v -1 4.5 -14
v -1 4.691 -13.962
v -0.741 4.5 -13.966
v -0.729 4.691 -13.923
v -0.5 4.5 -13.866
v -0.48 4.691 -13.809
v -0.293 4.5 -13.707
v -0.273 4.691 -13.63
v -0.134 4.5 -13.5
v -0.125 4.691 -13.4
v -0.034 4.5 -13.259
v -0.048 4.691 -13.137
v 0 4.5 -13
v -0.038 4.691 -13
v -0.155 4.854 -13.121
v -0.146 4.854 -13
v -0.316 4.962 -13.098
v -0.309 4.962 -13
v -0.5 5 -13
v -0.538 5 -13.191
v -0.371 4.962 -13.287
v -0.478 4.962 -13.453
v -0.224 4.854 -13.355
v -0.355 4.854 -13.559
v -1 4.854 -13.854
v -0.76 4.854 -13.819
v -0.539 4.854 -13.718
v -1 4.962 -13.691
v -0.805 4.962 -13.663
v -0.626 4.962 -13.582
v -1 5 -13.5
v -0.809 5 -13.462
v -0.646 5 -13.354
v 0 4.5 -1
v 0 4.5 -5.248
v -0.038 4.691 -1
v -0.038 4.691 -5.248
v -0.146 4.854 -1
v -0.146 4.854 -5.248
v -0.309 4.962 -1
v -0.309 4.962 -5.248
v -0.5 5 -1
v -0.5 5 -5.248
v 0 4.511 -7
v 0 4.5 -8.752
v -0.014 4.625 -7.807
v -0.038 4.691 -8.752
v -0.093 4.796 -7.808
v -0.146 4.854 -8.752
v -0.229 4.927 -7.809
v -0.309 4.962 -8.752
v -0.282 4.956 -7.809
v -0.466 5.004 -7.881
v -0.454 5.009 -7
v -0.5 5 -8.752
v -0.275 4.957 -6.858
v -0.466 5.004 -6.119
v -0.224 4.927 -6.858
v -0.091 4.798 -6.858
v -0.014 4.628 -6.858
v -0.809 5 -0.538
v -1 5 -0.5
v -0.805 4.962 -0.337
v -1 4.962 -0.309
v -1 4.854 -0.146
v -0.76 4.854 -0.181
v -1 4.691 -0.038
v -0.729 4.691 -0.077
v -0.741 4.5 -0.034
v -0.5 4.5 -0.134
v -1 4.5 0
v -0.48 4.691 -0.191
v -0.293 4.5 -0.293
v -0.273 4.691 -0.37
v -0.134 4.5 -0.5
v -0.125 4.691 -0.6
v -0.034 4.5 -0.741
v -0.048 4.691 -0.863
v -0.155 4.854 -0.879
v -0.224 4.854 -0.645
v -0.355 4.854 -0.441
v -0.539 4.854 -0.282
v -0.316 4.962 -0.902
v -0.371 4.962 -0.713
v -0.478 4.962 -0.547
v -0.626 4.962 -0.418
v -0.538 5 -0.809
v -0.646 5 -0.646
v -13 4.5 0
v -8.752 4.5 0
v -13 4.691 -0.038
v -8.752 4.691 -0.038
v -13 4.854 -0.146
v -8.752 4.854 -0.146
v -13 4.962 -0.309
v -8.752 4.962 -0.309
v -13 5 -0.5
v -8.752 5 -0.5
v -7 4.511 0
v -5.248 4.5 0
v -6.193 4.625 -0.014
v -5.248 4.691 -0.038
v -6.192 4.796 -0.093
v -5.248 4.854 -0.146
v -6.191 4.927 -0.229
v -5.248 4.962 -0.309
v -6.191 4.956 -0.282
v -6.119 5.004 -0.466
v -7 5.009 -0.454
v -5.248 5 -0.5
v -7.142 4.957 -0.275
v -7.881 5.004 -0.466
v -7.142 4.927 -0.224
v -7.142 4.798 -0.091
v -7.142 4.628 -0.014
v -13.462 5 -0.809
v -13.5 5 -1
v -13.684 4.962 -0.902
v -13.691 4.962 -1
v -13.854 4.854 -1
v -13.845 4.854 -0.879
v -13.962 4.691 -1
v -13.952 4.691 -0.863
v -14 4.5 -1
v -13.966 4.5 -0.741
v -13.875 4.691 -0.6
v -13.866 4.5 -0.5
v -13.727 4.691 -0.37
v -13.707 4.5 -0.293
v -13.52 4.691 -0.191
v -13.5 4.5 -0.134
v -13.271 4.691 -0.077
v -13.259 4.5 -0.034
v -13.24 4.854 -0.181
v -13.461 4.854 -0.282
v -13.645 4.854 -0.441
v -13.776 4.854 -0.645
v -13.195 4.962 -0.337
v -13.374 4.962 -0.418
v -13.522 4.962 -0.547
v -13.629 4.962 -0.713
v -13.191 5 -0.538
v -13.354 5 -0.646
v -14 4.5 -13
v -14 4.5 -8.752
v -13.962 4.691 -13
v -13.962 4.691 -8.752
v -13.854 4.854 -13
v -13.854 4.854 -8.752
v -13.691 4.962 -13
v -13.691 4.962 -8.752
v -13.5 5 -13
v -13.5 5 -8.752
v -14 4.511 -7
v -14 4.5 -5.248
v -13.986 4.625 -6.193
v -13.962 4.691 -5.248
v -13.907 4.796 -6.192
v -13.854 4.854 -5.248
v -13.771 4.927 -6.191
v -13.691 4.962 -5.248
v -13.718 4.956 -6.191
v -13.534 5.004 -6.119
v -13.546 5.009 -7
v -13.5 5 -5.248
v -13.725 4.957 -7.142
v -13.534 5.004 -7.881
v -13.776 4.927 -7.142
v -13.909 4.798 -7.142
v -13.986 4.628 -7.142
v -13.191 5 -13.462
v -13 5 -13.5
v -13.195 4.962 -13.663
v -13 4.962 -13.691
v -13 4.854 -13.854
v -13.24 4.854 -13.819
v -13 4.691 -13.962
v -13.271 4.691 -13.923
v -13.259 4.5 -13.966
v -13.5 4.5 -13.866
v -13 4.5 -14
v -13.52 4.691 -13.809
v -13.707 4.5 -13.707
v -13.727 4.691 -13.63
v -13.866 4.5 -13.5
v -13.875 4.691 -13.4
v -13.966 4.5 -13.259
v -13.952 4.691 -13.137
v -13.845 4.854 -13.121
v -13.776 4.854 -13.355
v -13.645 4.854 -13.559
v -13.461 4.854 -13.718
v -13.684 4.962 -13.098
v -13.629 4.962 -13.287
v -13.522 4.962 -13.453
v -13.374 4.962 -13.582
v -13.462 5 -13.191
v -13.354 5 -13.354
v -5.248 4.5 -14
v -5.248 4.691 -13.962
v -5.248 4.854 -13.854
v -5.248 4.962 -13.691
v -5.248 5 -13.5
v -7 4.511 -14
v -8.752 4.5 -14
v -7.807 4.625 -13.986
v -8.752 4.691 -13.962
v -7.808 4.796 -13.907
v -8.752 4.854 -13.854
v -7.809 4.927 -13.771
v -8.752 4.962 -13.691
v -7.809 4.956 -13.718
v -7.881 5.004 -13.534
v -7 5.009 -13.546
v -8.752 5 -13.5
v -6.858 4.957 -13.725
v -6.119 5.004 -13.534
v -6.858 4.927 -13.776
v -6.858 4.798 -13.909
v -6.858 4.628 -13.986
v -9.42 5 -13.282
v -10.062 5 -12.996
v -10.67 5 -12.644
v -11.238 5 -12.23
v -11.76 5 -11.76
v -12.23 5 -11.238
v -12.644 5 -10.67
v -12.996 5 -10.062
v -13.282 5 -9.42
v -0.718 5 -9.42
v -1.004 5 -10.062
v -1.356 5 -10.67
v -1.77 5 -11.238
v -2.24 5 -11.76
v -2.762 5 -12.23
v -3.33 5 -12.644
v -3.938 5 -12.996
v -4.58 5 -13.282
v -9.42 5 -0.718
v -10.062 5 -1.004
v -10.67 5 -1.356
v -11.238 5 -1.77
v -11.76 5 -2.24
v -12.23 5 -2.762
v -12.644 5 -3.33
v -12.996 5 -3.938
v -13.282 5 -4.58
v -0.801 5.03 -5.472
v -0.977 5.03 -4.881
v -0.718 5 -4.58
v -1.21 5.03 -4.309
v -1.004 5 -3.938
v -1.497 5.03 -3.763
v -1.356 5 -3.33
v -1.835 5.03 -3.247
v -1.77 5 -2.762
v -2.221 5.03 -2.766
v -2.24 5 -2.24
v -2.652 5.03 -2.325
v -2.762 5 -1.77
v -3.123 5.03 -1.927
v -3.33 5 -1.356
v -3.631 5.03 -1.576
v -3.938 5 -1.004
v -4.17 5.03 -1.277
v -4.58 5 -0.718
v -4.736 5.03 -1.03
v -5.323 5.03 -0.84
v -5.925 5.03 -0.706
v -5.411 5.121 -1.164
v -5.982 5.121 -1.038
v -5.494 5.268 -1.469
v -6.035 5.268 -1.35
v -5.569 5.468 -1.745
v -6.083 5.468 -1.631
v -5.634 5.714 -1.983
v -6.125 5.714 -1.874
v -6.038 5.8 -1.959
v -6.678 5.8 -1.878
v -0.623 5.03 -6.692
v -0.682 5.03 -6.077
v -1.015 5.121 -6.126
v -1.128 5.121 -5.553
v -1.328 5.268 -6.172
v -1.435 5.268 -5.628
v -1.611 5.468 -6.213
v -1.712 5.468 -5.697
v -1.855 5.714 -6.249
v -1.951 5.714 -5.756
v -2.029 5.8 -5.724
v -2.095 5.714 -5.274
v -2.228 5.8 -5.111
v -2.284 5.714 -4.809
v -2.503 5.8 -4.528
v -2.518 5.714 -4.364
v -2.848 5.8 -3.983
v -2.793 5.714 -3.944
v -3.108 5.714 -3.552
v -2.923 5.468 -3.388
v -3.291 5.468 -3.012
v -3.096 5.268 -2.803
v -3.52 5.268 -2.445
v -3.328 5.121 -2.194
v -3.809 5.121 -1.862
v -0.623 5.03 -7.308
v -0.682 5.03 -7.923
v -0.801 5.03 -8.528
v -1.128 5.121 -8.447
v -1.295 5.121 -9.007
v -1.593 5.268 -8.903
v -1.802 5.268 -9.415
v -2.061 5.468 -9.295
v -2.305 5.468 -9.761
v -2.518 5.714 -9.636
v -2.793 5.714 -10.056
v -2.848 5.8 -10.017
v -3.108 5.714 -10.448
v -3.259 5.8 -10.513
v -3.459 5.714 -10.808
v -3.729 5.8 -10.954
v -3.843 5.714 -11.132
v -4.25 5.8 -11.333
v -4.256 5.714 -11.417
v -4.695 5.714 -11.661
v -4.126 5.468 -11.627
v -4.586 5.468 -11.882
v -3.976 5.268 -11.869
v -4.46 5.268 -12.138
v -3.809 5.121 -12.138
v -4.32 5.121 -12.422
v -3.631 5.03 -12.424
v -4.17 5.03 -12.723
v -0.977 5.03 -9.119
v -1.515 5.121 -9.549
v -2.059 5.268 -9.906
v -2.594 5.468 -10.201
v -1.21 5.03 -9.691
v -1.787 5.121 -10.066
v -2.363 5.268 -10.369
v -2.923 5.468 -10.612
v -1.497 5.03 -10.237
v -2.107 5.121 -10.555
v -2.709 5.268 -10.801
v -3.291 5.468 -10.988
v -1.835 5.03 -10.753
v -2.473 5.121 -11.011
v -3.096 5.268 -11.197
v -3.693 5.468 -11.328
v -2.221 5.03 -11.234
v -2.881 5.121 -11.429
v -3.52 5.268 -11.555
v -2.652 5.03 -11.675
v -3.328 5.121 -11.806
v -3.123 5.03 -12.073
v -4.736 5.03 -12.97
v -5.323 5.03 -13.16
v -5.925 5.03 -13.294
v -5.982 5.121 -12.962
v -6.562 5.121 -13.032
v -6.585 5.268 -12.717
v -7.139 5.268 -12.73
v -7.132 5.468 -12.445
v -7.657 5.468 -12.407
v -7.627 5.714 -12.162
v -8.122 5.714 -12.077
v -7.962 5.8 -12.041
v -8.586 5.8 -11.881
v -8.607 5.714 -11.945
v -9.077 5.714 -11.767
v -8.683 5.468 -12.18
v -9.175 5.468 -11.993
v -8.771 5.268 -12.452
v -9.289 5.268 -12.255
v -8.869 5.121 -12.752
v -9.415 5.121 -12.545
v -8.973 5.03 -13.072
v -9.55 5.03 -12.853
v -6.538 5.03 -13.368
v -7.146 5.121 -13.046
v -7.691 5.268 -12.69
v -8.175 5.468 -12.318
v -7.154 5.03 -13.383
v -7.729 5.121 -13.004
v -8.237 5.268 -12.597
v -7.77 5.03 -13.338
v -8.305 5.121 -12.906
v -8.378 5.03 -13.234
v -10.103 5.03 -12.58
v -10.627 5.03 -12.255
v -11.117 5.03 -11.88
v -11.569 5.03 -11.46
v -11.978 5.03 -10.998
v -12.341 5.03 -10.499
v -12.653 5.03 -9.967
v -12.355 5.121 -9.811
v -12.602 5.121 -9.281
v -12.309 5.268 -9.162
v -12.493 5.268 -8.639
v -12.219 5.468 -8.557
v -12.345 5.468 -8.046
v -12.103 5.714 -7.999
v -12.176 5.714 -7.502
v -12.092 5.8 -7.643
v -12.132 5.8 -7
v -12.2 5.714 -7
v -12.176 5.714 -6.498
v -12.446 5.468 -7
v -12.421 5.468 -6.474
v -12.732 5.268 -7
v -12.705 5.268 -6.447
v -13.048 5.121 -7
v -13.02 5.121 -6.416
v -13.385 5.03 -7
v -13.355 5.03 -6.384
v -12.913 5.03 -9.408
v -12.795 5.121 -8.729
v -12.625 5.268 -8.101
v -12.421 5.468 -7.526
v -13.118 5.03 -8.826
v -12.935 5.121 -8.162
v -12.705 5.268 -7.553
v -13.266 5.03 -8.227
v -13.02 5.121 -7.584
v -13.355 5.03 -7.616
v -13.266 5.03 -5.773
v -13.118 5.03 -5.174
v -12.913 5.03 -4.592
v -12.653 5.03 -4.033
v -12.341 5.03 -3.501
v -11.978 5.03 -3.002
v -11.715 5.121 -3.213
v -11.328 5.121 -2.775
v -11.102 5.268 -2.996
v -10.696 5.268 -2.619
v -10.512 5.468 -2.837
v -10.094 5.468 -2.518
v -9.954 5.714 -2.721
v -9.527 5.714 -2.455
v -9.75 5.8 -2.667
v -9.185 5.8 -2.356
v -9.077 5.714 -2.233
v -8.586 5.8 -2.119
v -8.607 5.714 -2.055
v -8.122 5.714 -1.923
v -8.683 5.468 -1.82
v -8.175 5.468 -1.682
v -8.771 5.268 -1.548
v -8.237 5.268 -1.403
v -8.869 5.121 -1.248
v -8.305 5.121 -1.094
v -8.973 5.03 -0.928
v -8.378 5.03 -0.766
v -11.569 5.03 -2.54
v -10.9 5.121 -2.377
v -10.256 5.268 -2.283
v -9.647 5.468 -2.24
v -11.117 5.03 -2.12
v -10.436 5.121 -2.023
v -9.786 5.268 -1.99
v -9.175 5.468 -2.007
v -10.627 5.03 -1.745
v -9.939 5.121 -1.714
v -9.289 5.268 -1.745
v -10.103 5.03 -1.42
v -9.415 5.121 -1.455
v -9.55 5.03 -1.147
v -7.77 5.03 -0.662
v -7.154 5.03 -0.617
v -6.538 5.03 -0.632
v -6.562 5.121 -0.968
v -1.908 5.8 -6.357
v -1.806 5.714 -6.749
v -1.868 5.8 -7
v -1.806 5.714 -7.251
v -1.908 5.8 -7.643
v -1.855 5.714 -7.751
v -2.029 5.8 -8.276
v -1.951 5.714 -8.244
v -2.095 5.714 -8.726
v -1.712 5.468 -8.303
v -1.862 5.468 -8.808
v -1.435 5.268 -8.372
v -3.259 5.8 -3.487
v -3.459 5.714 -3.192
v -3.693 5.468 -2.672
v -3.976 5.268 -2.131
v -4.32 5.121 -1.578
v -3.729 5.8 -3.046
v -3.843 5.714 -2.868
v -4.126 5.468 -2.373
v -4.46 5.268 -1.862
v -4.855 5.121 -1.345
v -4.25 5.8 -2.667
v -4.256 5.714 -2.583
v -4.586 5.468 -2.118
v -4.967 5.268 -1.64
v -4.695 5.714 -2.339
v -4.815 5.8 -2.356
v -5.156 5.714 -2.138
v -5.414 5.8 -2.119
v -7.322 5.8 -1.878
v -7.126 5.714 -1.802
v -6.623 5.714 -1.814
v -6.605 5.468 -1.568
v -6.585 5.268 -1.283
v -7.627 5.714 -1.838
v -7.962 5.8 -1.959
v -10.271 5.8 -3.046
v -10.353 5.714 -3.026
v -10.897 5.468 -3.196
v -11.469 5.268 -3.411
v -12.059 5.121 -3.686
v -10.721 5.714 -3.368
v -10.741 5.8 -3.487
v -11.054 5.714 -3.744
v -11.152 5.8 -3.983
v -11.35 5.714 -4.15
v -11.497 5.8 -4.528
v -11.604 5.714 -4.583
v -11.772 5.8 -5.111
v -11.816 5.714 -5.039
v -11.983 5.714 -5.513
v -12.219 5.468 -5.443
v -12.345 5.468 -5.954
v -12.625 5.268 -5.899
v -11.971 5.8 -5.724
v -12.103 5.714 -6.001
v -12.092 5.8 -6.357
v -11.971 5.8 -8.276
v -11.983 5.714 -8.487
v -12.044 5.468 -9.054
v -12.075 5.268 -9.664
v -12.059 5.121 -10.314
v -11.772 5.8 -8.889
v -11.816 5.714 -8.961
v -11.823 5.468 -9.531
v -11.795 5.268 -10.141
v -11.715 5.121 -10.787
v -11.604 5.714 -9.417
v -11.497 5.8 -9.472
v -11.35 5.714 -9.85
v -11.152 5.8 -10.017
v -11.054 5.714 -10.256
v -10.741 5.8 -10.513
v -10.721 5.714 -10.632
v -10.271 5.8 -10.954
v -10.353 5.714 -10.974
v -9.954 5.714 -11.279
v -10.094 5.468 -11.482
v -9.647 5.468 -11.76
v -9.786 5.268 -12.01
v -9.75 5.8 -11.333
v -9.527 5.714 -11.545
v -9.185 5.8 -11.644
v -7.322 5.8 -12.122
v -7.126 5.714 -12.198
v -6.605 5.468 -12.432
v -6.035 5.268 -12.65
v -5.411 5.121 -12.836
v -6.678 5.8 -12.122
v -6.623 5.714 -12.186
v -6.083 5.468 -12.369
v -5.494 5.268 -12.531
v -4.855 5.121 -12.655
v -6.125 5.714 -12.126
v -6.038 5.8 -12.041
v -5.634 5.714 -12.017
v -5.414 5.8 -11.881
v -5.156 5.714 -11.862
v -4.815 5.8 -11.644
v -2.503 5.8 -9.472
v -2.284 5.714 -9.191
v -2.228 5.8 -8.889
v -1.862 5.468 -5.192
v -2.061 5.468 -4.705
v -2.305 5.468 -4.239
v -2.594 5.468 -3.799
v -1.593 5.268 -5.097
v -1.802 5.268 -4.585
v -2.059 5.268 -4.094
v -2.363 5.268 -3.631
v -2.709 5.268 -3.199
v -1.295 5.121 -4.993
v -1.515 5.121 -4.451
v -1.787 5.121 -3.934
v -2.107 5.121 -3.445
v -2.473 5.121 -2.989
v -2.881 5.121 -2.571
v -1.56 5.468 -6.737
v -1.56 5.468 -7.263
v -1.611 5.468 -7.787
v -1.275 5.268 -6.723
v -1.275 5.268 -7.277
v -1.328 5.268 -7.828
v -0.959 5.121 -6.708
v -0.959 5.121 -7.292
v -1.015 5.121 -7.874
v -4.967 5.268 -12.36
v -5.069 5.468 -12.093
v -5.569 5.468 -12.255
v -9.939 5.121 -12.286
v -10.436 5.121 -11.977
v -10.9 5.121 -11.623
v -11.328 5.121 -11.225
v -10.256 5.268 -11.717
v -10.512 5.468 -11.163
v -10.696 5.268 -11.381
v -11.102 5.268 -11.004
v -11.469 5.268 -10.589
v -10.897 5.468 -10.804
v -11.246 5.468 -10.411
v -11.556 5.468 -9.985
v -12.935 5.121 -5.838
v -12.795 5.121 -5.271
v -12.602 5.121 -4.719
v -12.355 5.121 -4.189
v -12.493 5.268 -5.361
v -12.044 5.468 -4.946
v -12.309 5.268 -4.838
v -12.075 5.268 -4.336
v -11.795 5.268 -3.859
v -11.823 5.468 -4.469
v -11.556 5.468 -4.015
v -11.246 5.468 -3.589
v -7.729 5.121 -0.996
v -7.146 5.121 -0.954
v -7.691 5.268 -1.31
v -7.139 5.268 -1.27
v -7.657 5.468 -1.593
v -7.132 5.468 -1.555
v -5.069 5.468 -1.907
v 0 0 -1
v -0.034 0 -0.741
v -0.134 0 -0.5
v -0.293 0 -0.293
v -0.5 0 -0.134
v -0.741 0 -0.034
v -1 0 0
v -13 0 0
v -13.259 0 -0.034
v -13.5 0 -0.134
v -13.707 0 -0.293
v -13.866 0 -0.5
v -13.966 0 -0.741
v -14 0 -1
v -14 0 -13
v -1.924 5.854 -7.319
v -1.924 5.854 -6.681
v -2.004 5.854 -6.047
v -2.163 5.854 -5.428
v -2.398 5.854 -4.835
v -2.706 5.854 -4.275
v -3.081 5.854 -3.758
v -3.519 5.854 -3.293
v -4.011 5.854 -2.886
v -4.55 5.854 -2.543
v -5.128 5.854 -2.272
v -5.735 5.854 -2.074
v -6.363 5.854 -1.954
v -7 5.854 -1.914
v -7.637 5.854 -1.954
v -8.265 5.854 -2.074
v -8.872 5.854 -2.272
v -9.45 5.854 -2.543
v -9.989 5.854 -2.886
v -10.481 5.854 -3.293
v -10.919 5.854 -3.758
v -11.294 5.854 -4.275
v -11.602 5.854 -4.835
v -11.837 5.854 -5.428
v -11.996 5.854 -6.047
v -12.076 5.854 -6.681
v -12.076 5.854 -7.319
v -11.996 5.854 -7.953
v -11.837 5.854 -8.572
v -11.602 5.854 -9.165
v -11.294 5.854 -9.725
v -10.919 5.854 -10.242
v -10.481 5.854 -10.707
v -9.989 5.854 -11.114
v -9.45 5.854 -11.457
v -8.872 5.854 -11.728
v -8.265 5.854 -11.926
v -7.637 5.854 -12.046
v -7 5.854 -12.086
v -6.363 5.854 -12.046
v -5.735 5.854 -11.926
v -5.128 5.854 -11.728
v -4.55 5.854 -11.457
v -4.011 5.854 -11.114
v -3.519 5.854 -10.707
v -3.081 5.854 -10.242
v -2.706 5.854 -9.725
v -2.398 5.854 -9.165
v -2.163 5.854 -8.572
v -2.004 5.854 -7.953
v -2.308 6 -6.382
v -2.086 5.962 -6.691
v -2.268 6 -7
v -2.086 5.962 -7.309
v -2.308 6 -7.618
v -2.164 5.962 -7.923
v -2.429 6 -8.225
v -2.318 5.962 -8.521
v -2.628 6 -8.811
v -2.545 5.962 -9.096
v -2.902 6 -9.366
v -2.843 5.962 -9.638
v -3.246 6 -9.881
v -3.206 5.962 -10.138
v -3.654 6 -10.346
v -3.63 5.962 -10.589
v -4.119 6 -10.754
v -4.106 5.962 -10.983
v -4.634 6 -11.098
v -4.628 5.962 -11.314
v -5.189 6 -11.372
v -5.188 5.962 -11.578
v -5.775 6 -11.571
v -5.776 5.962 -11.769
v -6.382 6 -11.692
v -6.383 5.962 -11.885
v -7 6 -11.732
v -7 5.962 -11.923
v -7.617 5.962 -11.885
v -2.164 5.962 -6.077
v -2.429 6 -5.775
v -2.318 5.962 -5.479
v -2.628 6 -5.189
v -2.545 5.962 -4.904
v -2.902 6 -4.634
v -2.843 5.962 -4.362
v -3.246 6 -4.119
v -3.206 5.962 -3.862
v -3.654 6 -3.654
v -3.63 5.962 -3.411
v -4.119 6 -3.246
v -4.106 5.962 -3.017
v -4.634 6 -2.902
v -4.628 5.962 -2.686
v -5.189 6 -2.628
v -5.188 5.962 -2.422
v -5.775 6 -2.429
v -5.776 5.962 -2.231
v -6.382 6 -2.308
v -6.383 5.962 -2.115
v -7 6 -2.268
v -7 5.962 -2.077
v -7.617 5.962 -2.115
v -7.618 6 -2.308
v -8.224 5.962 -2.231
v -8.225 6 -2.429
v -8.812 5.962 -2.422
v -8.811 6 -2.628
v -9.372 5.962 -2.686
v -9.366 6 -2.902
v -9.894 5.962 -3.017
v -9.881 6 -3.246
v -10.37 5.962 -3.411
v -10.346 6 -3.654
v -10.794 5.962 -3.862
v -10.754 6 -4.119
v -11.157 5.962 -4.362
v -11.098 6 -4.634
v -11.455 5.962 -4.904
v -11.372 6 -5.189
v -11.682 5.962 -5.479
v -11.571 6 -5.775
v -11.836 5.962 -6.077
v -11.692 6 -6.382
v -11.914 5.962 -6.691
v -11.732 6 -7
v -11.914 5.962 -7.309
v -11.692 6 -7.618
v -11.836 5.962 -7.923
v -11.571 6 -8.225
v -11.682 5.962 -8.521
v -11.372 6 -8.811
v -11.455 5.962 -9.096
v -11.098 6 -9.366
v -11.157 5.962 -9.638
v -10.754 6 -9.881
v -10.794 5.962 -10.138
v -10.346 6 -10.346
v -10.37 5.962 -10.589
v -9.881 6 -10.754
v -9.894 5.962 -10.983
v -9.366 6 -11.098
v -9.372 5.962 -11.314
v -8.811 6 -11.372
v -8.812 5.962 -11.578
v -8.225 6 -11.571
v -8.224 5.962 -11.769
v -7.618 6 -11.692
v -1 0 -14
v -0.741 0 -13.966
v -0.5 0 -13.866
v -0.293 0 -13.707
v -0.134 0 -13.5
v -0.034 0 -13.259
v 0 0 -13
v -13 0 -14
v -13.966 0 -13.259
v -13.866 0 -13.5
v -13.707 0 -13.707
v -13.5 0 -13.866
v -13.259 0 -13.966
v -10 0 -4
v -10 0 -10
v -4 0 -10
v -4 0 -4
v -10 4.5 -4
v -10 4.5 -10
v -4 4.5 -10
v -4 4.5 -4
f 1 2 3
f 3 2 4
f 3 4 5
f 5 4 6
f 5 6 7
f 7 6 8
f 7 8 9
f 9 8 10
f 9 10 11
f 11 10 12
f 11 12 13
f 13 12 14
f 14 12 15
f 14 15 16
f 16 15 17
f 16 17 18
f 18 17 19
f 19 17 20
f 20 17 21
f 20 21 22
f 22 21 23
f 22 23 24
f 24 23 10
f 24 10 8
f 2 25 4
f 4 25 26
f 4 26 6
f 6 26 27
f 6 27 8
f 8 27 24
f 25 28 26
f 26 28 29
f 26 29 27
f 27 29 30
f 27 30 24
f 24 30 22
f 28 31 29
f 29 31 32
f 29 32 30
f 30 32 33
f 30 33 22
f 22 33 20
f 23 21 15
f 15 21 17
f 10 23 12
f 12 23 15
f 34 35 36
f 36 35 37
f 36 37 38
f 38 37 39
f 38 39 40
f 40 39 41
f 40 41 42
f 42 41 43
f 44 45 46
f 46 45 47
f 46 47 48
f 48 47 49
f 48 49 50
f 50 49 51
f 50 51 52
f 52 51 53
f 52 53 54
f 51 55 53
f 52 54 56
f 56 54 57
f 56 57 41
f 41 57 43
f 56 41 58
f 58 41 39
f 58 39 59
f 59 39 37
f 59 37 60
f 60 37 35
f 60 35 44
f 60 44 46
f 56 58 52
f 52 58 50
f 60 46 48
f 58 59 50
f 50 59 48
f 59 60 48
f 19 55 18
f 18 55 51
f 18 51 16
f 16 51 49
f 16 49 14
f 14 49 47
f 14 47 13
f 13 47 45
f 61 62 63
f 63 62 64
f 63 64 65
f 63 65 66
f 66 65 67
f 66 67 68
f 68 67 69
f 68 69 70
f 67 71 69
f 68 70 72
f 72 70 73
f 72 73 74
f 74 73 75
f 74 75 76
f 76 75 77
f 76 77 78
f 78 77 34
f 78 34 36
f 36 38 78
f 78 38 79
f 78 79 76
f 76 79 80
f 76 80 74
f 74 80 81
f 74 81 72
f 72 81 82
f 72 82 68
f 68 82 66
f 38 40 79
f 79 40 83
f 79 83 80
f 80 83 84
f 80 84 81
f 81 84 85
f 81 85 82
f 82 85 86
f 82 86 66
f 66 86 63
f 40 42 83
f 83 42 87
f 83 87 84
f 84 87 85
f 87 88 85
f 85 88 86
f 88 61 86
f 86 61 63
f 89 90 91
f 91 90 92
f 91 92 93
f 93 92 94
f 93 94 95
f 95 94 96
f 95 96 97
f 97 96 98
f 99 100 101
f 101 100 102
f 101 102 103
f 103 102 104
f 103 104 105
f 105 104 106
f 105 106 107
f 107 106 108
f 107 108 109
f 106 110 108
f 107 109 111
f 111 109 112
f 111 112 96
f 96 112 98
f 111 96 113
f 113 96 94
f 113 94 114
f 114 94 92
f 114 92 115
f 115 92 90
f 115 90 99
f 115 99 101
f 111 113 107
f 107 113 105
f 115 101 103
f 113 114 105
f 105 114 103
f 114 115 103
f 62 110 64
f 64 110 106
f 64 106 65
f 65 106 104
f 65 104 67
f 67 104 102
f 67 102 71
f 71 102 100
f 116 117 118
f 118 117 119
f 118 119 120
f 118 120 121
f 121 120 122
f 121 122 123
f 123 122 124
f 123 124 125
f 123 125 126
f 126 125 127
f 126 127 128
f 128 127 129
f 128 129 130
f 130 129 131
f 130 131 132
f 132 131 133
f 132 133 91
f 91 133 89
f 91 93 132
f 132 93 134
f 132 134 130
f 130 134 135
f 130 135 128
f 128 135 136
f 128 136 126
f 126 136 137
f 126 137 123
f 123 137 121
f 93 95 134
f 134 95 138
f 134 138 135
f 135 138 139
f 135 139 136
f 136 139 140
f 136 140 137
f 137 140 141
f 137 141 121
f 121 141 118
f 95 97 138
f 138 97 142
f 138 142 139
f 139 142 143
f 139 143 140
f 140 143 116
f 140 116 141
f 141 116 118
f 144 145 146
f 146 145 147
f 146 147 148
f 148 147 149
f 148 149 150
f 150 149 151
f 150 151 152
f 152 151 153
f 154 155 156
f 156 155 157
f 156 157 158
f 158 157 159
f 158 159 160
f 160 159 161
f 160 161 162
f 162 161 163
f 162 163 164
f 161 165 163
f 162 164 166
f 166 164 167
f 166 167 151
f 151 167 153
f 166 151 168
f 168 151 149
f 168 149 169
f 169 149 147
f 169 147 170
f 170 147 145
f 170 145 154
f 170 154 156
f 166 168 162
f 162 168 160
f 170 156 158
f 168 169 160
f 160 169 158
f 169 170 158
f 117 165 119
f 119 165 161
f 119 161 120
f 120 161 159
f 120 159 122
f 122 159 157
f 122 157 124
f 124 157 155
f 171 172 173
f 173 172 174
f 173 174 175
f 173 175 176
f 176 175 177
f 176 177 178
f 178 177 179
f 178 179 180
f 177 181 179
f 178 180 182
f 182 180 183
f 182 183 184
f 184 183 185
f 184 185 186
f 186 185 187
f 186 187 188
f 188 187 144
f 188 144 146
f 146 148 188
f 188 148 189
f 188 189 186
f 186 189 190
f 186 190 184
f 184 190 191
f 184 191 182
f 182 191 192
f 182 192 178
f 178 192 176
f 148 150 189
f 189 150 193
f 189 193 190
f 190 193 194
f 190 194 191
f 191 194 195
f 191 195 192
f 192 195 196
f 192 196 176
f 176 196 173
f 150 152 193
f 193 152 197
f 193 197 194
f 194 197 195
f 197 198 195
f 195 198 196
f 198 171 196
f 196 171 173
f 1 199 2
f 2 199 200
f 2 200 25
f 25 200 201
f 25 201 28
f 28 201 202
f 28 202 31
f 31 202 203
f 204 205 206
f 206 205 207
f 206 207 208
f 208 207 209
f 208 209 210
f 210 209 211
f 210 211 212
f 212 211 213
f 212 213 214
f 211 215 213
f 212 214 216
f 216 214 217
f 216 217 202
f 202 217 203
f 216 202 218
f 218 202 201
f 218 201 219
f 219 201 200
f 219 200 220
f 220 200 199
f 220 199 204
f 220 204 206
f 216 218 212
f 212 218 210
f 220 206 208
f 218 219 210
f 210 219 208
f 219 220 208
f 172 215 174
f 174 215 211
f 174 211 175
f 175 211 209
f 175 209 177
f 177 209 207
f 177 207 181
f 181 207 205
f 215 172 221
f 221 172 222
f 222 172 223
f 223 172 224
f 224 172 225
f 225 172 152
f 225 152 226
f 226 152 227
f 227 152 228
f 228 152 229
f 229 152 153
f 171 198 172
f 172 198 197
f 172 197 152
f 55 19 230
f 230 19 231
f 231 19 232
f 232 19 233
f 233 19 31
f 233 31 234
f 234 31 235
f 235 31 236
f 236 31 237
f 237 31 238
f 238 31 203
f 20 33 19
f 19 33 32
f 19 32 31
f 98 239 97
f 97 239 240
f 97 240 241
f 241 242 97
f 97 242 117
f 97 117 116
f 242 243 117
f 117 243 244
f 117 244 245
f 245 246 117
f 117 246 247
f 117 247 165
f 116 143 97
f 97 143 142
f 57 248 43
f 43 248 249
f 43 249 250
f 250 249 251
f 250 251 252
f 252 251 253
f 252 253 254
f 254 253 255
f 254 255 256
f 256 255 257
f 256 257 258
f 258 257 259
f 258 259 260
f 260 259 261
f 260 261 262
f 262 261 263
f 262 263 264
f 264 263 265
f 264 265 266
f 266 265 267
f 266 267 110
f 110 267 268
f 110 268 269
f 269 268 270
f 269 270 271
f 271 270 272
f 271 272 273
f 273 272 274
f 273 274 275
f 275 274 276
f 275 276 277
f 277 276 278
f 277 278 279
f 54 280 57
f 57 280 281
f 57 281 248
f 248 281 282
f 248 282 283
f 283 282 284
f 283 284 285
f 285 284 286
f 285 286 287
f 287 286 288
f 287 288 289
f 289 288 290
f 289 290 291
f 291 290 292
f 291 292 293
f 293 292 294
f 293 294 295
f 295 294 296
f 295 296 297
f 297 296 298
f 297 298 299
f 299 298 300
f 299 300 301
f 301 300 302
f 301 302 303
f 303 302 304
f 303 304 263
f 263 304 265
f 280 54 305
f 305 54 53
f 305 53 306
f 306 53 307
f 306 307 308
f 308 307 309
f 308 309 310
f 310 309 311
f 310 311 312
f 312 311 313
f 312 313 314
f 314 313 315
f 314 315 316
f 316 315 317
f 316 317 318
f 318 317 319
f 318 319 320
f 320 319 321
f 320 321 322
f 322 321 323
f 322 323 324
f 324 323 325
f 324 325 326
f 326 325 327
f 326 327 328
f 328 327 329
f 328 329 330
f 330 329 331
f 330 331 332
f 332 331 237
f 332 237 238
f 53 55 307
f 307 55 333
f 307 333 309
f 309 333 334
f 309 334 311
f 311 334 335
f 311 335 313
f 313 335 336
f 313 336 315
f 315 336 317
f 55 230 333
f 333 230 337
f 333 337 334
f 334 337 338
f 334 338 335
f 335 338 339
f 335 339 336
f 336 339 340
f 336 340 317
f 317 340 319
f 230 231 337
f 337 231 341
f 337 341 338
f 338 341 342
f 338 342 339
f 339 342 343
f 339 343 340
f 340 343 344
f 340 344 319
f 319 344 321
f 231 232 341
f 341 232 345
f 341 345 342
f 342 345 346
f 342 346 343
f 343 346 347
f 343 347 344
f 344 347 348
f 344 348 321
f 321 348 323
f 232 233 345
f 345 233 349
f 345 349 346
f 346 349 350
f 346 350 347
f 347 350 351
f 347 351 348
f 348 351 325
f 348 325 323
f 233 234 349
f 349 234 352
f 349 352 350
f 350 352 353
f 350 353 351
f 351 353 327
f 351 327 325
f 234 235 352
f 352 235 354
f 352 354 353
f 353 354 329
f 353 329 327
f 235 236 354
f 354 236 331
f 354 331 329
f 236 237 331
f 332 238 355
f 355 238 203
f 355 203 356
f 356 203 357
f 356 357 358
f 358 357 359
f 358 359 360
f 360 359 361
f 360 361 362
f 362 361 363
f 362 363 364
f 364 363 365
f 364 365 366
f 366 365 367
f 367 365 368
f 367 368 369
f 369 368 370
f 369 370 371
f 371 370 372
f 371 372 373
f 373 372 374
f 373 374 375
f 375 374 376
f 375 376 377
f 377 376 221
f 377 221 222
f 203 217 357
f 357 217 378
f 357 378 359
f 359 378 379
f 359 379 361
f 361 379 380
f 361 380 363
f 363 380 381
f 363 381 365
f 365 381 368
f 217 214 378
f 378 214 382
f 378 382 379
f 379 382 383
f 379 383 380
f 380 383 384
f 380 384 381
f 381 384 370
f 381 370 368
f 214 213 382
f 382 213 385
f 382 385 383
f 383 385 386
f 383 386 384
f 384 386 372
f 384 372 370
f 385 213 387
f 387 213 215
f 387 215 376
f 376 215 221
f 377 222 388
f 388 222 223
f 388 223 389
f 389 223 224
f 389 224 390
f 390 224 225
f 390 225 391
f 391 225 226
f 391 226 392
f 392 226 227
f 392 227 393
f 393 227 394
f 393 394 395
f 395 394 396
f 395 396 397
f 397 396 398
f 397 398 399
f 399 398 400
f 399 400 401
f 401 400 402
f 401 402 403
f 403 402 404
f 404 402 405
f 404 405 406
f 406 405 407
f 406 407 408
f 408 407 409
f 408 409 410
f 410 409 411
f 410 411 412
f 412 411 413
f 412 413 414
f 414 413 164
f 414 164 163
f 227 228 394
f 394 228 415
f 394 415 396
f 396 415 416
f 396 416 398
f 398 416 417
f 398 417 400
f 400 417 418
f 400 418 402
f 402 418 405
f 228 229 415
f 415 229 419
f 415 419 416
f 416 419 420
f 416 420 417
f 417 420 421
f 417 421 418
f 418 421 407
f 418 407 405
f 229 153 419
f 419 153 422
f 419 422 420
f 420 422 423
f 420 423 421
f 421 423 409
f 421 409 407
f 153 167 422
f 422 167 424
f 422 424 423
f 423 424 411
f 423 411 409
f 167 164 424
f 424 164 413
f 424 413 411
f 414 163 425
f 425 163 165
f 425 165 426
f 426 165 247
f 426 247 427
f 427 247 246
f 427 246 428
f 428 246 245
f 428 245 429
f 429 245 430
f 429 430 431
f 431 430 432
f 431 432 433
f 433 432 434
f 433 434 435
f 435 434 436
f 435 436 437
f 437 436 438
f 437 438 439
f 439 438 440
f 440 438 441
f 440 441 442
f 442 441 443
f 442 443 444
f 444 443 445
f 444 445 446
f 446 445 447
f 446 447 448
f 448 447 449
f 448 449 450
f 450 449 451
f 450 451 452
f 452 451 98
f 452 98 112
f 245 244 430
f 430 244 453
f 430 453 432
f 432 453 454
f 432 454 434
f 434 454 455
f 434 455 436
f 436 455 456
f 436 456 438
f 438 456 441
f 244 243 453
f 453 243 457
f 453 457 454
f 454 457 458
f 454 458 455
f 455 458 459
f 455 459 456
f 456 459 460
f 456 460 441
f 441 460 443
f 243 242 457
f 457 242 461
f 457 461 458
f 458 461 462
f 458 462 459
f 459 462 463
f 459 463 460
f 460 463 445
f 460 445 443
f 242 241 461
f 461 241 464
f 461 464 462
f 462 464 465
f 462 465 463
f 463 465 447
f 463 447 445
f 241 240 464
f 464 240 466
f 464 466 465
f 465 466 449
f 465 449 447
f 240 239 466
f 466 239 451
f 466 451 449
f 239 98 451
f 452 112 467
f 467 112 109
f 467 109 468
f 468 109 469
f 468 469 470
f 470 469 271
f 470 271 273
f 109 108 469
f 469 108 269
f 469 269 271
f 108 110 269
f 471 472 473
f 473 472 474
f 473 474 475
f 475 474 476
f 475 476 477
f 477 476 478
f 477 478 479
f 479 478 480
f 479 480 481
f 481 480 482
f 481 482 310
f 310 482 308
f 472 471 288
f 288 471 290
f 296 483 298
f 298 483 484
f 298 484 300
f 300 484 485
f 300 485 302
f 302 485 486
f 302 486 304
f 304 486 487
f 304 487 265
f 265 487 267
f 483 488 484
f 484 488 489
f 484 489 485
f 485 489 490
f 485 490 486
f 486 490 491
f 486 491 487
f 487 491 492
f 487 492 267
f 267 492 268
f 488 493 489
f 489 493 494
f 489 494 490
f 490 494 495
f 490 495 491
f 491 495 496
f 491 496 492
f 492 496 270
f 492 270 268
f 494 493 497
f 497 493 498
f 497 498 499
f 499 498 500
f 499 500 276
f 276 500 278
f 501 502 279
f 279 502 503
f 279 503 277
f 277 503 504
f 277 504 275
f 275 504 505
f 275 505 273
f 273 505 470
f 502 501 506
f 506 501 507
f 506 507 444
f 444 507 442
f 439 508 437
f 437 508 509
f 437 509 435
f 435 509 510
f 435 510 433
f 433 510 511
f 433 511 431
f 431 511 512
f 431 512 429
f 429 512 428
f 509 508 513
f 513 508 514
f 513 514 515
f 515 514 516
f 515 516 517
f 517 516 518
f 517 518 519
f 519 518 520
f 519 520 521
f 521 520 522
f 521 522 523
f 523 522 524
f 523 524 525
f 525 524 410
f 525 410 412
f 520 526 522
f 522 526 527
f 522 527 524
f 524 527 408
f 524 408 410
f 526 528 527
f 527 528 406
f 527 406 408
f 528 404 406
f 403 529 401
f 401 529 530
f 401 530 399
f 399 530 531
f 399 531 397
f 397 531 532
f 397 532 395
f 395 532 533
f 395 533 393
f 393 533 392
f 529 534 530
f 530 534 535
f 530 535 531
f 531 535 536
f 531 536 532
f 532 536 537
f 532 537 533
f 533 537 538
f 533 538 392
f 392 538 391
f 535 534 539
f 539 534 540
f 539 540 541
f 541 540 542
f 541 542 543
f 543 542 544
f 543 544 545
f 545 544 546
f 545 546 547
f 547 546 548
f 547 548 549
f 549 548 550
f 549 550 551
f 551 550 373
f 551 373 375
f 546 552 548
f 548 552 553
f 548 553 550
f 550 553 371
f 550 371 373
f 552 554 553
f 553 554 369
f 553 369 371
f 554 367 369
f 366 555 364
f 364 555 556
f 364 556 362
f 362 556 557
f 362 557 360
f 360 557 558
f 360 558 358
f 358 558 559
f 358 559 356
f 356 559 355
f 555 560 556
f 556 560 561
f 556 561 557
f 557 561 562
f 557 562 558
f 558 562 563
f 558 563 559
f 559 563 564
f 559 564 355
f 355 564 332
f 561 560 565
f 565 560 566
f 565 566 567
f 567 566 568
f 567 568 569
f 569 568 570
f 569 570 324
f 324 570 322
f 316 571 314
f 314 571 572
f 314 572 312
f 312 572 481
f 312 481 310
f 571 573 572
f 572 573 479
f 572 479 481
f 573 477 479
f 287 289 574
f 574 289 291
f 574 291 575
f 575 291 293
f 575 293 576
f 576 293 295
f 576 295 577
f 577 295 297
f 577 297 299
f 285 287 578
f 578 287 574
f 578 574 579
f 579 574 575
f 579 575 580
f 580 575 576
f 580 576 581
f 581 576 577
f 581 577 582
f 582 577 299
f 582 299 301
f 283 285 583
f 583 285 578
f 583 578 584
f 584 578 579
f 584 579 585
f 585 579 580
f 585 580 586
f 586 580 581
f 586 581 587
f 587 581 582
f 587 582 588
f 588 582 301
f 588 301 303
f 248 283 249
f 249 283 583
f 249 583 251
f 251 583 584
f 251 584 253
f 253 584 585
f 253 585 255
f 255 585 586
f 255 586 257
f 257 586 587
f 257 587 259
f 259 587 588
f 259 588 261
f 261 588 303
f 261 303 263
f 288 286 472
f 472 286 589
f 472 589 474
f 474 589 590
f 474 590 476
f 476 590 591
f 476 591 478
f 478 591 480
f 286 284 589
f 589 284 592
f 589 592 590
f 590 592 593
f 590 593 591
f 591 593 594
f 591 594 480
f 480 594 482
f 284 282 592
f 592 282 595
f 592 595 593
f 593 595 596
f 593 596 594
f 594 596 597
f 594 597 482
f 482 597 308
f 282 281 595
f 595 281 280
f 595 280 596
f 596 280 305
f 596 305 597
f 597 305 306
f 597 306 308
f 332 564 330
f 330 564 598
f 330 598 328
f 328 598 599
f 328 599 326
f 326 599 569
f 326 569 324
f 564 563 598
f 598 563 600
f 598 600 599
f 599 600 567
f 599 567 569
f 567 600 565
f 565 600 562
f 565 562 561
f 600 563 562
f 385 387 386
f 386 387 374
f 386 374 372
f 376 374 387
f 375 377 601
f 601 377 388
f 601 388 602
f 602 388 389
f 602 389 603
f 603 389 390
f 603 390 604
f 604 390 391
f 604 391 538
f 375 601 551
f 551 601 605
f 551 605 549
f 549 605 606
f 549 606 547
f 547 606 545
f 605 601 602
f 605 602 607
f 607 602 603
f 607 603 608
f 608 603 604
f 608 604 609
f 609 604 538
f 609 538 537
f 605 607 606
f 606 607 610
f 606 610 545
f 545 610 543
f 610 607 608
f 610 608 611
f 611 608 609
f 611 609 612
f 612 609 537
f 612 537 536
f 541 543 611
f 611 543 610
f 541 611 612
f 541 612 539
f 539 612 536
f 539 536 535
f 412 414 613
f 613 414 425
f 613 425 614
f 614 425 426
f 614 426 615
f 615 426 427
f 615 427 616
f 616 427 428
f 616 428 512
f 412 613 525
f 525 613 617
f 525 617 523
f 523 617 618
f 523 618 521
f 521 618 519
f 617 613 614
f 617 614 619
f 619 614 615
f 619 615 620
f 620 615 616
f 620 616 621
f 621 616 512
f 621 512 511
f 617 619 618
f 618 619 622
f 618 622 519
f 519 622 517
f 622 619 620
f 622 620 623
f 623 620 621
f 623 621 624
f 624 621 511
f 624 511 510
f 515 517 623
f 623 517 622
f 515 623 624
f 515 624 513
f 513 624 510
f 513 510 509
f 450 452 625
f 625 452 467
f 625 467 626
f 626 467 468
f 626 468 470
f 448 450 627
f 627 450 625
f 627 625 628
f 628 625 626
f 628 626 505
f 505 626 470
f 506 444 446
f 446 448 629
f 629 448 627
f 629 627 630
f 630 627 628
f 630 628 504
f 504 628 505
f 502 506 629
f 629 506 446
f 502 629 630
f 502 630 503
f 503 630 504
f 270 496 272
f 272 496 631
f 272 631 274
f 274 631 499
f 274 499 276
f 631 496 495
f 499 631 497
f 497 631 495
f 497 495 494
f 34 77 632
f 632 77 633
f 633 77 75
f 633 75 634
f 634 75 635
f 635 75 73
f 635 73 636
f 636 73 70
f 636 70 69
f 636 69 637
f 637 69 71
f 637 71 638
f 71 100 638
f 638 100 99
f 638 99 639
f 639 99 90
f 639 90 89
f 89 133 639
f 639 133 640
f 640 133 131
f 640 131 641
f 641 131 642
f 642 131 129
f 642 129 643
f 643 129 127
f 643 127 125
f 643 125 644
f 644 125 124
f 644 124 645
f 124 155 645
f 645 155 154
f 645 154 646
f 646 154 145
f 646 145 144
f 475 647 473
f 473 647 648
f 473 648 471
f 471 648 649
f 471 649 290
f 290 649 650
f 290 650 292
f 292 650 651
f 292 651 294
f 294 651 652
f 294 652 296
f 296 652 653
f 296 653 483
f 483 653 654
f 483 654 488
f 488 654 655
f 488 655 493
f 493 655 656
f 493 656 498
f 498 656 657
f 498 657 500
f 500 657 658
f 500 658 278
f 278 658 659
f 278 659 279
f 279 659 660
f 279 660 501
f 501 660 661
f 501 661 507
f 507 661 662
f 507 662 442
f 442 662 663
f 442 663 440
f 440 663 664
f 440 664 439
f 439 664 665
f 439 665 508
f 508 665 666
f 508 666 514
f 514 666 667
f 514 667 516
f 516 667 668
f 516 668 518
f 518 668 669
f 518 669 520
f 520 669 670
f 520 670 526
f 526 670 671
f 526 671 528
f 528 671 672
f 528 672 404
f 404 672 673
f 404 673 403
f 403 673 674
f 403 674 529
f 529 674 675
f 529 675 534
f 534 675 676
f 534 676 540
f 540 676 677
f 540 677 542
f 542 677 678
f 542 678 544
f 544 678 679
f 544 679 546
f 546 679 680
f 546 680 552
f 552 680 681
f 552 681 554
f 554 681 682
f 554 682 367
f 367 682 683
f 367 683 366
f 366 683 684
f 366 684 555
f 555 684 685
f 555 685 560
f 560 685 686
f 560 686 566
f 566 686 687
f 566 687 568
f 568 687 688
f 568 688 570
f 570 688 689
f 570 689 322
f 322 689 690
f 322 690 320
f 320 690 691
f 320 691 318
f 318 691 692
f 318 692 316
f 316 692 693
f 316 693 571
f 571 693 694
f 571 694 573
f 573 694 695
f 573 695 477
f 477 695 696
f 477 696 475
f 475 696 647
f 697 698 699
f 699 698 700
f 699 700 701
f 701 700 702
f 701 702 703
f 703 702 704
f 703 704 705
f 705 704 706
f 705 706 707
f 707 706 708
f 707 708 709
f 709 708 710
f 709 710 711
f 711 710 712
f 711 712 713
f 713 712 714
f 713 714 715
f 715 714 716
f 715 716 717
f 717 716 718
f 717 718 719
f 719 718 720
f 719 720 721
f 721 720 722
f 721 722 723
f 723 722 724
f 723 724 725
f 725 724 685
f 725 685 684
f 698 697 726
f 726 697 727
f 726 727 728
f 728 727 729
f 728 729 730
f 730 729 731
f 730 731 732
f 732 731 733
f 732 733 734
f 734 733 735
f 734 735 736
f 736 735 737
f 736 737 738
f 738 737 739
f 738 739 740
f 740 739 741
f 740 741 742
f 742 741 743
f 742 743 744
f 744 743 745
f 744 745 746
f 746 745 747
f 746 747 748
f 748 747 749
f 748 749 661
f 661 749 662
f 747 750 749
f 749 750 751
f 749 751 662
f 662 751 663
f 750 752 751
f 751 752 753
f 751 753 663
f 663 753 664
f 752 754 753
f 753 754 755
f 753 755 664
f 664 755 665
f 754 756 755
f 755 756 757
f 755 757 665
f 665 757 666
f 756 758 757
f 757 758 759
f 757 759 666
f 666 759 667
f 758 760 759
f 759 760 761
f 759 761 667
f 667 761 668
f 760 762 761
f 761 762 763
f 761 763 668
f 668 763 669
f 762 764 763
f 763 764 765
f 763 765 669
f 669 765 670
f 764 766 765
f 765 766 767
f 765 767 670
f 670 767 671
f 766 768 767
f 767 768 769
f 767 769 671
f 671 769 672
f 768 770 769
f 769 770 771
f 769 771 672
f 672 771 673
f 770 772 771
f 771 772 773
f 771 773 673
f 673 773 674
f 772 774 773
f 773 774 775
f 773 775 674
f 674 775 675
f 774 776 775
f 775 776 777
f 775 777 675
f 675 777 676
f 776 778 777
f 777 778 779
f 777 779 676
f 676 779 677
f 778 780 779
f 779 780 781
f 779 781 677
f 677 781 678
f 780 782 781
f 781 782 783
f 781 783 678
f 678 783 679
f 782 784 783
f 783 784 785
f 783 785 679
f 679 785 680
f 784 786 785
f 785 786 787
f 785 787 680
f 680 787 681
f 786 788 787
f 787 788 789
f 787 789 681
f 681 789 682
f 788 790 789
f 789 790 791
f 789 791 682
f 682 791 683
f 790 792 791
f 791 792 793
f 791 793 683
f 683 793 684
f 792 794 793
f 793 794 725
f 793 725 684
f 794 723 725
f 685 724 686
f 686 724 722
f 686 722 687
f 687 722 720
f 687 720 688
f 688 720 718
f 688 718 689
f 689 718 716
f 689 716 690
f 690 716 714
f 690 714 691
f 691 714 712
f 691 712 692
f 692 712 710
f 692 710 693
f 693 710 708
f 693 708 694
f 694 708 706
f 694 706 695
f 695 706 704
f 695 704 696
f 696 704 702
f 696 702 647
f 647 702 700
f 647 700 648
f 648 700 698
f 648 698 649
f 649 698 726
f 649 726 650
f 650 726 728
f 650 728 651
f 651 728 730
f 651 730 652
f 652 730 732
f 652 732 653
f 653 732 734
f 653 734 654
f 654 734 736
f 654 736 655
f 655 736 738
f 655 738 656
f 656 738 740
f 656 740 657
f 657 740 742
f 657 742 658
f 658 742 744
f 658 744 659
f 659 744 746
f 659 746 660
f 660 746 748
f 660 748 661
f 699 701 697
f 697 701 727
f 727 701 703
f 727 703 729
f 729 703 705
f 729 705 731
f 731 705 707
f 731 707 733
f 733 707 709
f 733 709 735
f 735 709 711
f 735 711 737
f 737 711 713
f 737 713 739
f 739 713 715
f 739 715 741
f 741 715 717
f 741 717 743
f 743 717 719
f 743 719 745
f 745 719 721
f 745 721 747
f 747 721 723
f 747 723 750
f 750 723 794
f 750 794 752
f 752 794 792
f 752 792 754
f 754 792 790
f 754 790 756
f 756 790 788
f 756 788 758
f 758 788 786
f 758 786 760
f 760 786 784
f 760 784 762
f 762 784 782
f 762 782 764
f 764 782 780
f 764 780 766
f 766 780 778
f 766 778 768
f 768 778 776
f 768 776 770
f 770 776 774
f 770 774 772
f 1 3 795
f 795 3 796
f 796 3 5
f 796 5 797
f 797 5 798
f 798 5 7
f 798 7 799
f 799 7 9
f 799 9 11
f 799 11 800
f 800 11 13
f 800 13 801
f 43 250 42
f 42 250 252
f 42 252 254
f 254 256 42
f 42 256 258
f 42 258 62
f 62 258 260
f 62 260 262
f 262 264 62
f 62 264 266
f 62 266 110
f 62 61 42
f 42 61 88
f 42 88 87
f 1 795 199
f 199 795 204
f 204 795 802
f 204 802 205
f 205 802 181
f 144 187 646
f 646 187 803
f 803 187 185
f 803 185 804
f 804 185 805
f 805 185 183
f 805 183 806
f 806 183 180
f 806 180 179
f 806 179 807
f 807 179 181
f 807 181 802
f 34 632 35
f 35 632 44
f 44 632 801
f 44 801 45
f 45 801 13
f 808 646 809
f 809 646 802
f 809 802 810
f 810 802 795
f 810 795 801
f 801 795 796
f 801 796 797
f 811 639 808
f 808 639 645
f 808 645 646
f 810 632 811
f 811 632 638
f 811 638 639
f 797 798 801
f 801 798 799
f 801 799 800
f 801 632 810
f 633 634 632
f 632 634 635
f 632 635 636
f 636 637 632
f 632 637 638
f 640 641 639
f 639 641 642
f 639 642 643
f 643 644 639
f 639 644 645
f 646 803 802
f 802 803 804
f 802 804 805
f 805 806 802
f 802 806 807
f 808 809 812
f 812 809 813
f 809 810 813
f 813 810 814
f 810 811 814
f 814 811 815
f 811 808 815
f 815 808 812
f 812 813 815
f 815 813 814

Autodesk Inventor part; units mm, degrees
ref_plane "YZ Plane" through (0, 0, 0) normal (1, 0, 0) x (0, 1, 0)
ref_plane "XZ Plane" through (0, 0, 0) normal (0, 1, 0) x (-1, 0, 0)
ref_plane "XY Plane" through (0, 0, 0) normal (0, 0, 1) x (1, 0, 0)
sketch "Sketch5" plane through (0, 0, 0) normal (0, 1, 0) x (-1, 0, 0)
  line L0 (0, 0) -> (14, 0)
  line L1 (14, 0) -> (14, -14)
  line L2 (14, -14) -> (0, -14)
  line L3 (0, -14) -> (0, 0)
  dimension "d3" = 14
  dimension "d4" = 14
extrude "Extrusion1" add sketch "Sketch5" along normal blind 5
sketch "Sketch6" plane through (0, 5, 0) normal (0, 1, 0) x (1, 0, 0)
  circle A0 centre (-7, 7) radius 5
  line L0 (0, 0) -> (0, 14) projected
  line L1 (0, 14) -> (-14, 14) projected
  dimension "d7" = 10
  dimension "d8" = 7
  dimension "d9" = 7
extrude "Extrusion2" add sketch "Sketch6" along normal blind 1
fillet "Fillet1" radius 2 1 edges at (-12, 5, -7)
fillet "Fillet2" radius 1 4 edges at (-14, 2.5, 0) (0, 2.5, 0) (-14, 2.5, -14) (0, 2.5, -14)
fillet "Fillet3" radius 0.5 9 edges at (-12, 6, -7) (-0.2929, 5, -13.7071) (-7, 5, -14) (-13.7071, 5, -13.7071) (-14, 5, -7) (-13.7071, 5, -0.2929) (-7, 5, 0) (-0.2929, 5, -0.2929) (0, 5, -7)
ref_plane "Work Plane2" through (-7, 0, -1) normal (1, 0, 0) x (0, 0, -1)
sketch "Sketch25" plane through (0, 0, 0) normal (0, -1, 0) x (1, 0, 0)
  line L0 (-4, -10) -> (-10, -10)
  line L1 (-10, -10) -> (-10, -4)
  line L2 (-10, -4) -> (-4, -4)
  line L3 (-4, -4) -> (-4, -10)
  line L4 (-1, -14) -> (-13, -14) projected
  line L5 (0, -1) -> (0, -13) projected
  point P0 (0, 0)
  dimension "d47" = 6
  dimension "d48" = 6
  dimension "d49" = 4
  dimension "d50" = 4
extrude "Extrusion6" cut sketch "Sketch25" against normal blind 4.5
properties part number "Small_Button"
